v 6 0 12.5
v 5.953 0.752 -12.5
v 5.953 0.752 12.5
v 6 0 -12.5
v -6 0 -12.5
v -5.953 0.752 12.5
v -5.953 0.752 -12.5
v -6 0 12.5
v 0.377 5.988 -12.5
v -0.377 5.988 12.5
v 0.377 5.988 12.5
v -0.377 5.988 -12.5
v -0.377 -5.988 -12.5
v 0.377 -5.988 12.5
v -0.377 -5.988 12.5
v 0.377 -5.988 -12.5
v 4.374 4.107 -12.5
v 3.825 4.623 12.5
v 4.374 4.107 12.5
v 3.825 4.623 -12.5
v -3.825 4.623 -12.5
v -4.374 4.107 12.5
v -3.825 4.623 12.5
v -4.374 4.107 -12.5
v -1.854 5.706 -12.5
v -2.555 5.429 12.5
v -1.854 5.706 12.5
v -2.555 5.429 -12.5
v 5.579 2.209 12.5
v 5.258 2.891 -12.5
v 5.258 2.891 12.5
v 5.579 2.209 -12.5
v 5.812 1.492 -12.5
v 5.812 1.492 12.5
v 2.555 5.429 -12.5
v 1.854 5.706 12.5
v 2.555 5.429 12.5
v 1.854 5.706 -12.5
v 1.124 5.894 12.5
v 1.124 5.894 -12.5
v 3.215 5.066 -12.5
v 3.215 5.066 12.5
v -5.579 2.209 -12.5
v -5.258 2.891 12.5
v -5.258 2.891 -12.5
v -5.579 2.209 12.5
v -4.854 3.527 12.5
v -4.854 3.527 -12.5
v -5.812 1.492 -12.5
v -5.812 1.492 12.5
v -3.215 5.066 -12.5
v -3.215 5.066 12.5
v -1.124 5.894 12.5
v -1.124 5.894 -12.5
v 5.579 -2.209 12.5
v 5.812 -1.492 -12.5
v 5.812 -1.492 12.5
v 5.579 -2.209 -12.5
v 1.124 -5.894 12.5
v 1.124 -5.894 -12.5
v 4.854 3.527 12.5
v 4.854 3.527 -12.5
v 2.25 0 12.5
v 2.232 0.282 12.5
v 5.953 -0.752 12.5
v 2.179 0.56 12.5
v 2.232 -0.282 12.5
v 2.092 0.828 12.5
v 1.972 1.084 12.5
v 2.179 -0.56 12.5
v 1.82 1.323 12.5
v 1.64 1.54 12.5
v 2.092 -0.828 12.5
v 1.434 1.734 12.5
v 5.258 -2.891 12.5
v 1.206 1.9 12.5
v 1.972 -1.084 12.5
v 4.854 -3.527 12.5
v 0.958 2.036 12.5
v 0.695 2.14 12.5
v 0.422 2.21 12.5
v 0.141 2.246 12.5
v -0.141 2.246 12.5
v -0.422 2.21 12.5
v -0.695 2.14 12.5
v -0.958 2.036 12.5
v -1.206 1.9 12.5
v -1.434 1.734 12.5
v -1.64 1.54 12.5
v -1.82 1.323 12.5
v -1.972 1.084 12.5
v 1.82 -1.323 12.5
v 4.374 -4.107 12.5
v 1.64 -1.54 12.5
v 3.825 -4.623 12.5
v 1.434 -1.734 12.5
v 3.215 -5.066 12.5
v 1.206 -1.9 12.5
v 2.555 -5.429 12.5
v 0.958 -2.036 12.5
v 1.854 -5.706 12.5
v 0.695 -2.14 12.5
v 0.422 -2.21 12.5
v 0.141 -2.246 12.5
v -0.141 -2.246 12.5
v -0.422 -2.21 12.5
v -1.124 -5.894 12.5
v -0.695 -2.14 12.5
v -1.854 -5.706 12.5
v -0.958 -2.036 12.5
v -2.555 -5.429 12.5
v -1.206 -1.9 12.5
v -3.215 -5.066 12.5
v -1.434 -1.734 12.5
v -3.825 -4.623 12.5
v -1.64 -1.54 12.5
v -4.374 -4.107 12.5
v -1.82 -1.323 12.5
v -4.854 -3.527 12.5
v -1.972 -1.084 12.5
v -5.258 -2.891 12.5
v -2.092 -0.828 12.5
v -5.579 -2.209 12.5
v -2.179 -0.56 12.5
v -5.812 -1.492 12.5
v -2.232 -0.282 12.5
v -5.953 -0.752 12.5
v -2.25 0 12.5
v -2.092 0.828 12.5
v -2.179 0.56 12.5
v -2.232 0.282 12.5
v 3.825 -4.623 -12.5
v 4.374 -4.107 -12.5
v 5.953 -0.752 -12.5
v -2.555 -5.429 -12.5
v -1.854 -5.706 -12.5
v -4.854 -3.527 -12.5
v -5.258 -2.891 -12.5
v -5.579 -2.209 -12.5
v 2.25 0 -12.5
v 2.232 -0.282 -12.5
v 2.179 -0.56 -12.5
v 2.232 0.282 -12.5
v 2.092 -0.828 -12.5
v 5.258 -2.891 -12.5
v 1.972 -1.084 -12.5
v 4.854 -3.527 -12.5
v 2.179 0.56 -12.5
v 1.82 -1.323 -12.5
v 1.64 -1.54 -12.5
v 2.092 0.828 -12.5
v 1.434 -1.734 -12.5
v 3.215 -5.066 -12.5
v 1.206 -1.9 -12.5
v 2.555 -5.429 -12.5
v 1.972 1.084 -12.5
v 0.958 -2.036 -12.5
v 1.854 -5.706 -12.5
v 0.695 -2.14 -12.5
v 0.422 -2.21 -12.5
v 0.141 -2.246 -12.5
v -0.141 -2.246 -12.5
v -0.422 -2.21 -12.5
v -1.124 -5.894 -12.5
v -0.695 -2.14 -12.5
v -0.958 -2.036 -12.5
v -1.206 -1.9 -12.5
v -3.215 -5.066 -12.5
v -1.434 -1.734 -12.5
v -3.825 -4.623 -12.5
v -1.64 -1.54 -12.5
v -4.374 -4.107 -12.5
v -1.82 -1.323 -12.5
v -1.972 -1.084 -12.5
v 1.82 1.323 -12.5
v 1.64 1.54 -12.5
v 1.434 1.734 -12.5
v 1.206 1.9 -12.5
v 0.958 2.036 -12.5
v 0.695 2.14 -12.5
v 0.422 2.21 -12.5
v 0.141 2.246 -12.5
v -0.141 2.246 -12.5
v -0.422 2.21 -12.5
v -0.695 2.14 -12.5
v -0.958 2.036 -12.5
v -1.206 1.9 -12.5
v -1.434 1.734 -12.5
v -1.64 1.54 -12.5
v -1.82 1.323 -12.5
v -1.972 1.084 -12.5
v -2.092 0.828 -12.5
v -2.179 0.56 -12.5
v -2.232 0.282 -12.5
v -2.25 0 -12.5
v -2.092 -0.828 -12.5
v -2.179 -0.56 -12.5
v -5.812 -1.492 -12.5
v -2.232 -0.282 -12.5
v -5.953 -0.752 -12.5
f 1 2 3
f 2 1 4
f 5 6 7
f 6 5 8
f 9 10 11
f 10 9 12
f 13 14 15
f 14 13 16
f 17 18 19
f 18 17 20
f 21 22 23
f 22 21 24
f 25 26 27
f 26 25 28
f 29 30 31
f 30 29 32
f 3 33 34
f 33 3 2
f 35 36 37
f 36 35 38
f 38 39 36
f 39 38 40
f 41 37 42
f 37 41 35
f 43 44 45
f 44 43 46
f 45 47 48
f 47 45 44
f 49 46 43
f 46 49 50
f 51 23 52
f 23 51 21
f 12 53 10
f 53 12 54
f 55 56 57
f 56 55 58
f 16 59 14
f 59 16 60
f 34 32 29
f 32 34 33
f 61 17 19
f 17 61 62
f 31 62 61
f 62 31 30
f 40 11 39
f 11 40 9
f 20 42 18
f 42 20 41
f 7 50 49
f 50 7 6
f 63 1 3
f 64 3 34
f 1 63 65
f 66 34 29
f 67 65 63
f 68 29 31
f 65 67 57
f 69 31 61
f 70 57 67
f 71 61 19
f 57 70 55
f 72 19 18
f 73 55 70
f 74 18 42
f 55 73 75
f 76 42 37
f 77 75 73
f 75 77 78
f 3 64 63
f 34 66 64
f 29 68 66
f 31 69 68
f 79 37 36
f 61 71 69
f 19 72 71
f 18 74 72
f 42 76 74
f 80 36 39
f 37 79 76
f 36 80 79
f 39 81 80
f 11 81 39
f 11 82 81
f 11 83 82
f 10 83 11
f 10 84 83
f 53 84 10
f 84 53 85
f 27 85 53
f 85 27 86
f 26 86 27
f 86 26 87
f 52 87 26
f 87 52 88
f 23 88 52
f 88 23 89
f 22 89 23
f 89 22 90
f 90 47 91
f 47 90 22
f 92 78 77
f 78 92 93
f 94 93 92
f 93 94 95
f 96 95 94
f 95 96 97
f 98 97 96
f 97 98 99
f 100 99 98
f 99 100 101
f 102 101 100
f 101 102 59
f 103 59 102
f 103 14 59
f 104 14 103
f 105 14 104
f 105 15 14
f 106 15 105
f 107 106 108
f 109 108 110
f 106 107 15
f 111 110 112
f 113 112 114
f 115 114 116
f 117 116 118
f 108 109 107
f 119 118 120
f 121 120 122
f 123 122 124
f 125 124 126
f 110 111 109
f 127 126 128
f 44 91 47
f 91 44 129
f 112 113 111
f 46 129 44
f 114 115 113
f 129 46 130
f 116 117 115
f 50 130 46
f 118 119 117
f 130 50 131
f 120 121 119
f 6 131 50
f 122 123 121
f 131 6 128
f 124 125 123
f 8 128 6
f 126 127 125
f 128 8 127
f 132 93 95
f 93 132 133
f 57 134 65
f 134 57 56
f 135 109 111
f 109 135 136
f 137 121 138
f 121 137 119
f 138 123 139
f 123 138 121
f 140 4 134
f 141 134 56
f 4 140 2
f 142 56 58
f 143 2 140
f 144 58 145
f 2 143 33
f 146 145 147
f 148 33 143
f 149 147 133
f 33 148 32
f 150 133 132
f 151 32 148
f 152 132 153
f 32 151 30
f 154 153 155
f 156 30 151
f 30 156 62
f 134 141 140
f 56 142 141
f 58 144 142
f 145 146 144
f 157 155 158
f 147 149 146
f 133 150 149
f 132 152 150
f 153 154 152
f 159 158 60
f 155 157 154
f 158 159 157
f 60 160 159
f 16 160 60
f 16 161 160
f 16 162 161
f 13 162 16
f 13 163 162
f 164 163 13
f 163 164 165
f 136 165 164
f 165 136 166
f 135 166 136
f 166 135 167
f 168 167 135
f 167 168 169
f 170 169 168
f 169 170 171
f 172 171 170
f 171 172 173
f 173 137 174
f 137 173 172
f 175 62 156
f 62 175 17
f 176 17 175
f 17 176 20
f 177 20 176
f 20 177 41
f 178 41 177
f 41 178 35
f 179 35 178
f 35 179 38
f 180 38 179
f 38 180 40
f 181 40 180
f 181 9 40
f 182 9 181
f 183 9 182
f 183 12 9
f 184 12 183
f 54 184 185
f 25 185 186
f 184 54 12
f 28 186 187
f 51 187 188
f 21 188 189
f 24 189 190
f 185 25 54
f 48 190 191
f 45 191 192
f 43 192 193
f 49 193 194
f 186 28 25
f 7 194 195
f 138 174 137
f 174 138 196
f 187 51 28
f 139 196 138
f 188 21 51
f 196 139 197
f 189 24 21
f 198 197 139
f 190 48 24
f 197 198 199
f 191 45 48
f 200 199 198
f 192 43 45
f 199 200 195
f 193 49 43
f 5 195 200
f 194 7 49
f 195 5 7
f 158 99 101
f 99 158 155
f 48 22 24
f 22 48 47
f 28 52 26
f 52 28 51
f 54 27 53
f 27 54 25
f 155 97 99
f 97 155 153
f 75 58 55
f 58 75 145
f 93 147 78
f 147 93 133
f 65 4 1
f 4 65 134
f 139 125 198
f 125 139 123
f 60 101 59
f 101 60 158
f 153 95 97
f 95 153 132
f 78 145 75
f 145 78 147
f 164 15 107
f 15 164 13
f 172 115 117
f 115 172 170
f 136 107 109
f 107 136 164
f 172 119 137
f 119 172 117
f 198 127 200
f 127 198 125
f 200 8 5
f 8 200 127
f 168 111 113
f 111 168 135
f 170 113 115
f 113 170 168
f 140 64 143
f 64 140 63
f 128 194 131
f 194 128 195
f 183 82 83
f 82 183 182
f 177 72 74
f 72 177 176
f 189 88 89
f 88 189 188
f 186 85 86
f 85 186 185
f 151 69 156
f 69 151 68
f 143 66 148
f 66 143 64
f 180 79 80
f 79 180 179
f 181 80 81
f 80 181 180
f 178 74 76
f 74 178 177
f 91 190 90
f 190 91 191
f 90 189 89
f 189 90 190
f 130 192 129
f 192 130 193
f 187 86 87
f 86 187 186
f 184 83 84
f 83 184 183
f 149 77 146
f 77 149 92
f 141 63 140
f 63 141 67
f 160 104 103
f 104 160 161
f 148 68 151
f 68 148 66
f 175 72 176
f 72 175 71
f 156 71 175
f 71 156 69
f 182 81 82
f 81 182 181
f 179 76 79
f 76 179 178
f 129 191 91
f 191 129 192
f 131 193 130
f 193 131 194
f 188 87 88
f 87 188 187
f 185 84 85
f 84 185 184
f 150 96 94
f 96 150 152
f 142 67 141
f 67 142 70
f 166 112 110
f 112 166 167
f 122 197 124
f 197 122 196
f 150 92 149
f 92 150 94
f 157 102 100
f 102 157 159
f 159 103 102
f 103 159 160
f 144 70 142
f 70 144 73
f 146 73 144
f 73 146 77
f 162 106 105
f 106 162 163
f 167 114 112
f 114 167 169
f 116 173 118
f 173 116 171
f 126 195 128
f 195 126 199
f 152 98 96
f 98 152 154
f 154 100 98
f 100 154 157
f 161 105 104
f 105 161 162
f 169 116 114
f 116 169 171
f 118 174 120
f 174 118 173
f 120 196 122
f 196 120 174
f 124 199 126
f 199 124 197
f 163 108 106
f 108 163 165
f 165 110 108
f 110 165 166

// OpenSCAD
$fn = 50;


difference() {
	union() {
		translate(v = [0, 0, -12.5000000000]) {
			cylinder(h = 25, r = 6.0000000000);
		}
	}
	union() {
		translate(v = [0, 0, -100.0000000000]) {
			cylinder(h = 200, r = 2.2500000000);
		}
	}
}
